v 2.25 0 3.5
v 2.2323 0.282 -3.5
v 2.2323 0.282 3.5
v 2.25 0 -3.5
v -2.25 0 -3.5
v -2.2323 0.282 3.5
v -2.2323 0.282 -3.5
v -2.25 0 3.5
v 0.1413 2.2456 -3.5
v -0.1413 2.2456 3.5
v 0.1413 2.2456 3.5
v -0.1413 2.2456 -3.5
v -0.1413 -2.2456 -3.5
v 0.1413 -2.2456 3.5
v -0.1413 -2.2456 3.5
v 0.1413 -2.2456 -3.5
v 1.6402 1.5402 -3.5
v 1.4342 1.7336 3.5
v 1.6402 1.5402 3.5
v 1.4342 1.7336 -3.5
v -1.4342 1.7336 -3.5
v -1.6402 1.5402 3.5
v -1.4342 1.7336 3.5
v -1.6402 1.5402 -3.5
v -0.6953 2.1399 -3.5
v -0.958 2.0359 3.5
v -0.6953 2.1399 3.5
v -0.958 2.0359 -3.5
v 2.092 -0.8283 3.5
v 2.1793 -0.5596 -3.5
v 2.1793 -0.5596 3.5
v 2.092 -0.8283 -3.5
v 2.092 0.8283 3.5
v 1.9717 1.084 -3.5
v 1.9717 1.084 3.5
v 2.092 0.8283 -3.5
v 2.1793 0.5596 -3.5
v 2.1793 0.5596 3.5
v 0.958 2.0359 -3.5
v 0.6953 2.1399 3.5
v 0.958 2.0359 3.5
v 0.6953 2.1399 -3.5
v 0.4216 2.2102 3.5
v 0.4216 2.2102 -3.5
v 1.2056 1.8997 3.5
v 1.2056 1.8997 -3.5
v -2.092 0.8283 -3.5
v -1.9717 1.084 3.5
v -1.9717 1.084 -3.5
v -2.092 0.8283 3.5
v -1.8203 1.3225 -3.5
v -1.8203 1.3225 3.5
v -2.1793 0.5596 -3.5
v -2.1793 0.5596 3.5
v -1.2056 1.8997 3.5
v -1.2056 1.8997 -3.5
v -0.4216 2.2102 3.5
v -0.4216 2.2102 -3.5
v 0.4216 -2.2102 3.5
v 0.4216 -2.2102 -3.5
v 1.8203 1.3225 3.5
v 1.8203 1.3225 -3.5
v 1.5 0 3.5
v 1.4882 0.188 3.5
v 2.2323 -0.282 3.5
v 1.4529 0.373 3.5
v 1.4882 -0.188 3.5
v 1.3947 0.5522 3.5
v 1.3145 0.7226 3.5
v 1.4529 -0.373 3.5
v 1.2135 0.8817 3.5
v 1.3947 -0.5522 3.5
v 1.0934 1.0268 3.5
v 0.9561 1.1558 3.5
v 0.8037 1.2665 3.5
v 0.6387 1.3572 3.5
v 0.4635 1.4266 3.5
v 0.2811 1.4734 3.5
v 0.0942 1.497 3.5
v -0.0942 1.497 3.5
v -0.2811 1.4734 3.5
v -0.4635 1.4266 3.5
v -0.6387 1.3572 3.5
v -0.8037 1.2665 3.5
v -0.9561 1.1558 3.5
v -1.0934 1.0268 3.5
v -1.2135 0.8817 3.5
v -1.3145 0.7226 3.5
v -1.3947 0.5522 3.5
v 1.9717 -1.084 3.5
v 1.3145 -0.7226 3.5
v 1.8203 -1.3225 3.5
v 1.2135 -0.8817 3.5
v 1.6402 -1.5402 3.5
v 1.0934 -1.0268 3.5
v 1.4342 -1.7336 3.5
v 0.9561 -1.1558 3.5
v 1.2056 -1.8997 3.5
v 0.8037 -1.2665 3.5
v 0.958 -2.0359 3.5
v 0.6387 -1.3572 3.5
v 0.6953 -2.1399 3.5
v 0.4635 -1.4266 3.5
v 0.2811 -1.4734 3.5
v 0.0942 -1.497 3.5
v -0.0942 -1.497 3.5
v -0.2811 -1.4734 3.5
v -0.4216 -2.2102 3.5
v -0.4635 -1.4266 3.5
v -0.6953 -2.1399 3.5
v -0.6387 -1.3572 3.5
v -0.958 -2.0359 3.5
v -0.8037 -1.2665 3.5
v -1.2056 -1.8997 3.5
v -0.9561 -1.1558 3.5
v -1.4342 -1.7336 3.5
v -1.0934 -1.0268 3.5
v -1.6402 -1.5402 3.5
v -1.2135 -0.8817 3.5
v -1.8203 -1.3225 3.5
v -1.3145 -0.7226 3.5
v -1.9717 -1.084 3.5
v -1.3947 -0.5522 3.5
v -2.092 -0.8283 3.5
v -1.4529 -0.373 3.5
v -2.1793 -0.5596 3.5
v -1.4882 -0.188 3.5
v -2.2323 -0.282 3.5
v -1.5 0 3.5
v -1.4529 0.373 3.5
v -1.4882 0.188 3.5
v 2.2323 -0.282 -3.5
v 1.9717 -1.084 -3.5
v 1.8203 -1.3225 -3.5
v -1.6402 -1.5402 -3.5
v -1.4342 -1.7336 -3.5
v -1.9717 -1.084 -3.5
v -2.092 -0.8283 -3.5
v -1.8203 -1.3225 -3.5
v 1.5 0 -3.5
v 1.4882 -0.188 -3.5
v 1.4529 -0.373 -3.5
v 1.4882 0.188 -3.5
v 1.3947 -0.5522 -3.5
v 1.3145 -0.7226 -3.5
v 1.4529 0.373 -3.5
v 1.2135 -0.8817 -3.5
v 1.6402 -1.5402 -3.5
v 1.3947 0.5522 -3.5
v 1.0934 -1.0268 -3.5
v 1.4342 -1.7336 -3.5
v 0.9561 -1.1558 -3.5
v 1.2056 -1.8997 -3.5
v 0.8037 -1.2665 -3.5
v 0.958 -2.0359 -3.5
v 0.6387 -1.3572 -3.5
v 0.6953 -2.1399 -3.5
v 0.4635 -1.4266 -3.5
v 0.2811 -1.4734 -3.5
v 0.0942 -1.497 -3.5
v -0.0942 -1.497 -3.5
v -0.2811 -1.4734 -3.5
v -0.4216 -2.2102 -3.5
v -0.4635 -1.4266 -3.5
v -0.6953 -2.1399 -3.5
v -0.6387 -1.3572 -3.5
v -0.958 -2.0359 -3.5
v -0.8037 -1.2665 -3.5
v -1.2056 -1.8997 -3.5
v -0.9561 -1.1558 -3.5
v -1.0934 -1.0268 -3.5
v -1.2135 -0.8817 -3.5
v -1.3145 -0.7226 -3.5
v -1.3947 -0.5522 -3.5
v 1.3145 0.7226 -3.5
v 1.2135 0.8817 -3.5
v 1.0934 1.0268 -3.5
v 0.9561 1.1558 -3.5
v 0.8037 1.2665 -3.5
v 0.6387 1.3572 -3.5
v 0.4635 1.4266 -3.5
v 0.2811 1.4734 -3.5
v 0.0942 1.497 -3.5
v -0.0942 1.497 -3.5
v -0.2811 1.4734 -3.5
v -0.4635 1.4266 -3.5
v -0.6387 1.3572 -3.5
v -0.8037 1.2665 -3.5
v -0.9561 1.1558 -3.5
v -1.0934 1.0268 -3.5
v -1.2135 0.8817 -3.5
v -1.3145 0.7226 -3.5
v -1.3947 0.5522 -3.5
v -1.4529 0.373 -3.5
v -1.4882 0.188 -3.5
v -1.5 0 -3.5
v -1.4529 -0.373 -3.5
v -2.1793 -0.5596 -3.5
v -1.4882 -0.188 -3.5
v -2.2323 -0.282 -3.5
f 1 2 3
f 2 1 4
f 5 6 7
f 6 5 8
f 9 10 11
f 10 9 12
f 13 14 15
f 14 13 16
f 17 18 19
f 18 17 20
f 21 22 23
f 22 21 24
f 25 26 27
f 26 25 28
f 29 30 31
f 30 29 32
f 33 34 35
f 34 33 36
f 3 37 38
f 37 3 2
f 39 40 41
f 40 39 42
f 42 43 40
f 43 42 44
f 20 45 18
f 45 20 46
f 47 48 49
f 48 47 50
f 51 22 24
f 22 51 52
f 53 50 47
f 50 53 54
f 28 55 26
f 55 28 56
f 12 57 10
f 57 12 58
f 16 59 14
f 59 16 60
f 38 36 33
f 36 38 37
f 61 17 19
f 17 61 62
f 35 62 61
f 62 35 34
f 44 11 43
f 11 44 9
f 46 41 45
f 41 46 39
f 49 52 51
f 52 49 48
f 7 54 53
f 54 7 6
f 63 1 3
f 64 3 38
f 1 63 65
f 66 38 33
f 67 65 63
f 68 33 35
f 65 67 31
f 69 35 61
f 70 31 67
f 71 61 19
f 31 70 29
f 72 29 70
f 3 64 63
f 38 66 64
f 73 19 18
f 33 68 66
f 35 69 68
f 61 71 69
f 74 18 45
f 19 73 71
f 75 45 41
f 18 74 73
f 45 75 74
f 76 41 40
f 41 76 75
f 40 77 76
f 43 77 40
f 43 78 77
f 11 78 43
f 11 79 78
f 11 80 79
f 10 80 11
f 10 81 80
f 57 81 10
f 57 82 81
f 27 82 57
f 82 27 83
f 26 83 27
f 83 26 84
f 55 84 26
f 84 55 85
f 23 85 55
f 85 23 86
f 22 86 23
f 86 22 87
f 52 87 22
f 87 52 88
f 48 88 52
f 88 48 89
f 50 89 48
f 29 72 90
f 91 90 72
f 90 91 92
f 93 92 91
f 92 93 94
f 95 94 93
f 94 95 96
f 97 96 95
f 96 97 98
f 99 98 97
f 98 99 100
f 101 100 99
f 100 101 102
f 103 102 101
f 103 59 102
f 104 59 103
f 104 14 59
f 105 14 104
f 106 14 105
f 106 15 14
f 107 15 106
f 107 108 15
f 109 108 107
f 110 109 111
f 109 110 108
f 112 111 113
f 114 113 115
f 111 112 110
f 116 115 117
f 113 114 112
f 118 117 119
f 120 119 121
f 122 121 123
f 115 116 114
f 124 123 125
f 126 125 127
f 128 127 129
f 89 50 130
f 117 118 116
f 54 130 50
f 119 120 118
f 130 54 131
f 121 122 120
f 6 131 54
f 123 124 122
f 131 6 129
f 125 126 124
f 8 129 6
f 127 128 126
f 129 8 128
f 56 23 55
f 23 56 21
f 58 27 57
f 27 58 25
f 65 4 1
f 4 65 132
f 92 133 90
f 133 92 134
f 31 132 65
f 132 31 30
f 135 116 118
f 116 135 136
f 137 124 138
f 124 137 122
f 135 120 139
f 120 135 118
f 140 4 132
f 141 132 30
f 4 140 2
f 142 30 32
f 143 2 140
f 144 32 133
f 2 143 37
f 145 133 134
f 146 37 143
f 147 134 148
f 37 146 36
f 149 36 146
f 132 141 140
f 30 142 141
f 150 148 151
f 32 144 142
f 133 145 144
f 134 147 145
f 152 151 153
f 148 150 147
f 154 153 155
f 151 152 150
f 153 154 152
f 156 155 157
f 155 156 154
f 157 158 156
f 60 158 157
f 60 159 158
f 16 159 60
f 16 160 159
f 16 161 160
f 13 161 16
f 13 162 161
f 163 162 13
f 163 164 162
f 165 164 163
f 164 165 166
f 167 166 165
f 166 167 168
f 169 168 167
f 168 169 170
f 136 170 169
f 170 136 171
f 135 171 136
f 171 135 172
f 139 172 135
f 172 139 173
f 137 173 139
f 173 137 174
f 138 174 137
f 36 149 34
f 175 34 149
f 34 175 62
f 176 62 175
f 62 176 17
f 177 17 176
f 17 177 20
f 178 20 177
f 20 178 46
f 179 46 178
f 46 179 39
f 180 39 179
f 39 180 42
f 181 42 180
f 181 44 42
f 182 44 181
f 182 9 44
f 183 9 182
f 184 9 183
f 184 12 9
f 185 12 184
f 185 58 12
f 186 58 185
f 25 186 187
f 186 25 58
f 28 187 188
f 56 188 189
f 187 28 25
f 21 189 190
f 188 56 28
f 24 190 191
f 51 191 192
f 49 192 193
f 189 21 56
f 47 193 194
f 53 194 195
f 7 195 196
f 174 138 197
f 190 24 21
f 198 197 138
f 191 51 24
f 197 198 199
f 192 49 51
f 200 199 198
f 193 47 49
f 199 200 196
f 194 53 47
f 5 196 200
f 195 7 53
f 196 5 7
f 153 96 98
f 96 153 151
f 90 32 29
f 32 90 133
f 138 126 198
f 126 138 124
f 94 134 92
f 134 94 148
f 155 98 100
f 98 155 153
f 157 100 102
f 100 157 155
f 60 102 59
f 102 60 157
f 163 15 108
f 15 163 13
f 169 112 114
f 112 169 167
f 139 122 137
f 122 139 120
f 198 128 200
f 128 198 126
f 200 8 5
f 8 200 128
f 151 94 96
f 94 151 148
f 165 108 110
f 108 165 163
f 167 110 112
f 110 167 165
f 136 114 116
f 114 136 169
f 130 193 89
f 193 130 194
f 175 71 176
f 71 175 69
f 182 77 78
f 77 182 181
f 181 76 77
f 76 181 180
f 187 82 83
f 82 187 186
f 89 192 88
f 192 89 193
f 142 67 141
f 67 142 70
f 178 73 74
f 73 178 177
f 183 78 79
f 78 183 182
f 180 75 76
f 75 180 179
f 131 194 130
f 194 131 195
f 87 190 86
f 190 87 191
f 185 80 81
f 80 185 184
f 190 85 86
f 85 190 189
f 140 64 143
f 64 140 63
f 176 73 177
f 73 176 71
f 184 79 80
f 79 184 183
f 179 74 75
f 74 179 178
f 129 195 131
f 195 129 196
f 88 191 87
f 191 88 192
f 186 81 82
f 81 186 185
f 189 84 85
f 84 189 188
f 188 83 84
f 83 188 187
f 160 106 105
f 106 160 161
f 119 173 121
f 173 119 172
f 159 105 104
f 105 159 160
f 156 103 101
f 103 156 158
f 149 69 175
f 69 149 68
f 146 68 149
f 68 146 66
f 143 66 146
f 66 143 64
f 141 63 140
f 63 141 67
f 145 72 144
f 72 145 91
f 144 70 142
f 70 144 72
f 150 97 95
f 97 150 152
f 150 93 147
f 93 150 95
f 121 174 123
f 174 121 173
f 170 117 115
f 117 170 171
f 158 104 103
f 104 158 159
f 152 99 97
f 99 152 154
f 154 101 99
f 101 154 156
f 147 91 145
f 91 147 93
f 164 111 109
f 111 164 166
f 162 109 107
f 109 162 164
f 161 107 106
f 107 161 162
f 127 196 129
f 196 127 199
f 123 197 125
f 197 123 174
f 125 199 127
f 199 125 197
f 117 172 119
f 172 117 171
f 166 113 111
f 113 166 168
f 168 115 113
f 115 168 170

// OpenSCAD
$fn = 50;


difference() {
	union() {
		translate(v = [0, 0, -3.5000000000]) {
			cylinder(h = 7, r = 2.2500000000);
		}
	}
	union() {
		translate(v = [0, 0, -100.0000000000]) {
			cylinder(h = 200, r = 1.5000000000);
		}
	}
}
